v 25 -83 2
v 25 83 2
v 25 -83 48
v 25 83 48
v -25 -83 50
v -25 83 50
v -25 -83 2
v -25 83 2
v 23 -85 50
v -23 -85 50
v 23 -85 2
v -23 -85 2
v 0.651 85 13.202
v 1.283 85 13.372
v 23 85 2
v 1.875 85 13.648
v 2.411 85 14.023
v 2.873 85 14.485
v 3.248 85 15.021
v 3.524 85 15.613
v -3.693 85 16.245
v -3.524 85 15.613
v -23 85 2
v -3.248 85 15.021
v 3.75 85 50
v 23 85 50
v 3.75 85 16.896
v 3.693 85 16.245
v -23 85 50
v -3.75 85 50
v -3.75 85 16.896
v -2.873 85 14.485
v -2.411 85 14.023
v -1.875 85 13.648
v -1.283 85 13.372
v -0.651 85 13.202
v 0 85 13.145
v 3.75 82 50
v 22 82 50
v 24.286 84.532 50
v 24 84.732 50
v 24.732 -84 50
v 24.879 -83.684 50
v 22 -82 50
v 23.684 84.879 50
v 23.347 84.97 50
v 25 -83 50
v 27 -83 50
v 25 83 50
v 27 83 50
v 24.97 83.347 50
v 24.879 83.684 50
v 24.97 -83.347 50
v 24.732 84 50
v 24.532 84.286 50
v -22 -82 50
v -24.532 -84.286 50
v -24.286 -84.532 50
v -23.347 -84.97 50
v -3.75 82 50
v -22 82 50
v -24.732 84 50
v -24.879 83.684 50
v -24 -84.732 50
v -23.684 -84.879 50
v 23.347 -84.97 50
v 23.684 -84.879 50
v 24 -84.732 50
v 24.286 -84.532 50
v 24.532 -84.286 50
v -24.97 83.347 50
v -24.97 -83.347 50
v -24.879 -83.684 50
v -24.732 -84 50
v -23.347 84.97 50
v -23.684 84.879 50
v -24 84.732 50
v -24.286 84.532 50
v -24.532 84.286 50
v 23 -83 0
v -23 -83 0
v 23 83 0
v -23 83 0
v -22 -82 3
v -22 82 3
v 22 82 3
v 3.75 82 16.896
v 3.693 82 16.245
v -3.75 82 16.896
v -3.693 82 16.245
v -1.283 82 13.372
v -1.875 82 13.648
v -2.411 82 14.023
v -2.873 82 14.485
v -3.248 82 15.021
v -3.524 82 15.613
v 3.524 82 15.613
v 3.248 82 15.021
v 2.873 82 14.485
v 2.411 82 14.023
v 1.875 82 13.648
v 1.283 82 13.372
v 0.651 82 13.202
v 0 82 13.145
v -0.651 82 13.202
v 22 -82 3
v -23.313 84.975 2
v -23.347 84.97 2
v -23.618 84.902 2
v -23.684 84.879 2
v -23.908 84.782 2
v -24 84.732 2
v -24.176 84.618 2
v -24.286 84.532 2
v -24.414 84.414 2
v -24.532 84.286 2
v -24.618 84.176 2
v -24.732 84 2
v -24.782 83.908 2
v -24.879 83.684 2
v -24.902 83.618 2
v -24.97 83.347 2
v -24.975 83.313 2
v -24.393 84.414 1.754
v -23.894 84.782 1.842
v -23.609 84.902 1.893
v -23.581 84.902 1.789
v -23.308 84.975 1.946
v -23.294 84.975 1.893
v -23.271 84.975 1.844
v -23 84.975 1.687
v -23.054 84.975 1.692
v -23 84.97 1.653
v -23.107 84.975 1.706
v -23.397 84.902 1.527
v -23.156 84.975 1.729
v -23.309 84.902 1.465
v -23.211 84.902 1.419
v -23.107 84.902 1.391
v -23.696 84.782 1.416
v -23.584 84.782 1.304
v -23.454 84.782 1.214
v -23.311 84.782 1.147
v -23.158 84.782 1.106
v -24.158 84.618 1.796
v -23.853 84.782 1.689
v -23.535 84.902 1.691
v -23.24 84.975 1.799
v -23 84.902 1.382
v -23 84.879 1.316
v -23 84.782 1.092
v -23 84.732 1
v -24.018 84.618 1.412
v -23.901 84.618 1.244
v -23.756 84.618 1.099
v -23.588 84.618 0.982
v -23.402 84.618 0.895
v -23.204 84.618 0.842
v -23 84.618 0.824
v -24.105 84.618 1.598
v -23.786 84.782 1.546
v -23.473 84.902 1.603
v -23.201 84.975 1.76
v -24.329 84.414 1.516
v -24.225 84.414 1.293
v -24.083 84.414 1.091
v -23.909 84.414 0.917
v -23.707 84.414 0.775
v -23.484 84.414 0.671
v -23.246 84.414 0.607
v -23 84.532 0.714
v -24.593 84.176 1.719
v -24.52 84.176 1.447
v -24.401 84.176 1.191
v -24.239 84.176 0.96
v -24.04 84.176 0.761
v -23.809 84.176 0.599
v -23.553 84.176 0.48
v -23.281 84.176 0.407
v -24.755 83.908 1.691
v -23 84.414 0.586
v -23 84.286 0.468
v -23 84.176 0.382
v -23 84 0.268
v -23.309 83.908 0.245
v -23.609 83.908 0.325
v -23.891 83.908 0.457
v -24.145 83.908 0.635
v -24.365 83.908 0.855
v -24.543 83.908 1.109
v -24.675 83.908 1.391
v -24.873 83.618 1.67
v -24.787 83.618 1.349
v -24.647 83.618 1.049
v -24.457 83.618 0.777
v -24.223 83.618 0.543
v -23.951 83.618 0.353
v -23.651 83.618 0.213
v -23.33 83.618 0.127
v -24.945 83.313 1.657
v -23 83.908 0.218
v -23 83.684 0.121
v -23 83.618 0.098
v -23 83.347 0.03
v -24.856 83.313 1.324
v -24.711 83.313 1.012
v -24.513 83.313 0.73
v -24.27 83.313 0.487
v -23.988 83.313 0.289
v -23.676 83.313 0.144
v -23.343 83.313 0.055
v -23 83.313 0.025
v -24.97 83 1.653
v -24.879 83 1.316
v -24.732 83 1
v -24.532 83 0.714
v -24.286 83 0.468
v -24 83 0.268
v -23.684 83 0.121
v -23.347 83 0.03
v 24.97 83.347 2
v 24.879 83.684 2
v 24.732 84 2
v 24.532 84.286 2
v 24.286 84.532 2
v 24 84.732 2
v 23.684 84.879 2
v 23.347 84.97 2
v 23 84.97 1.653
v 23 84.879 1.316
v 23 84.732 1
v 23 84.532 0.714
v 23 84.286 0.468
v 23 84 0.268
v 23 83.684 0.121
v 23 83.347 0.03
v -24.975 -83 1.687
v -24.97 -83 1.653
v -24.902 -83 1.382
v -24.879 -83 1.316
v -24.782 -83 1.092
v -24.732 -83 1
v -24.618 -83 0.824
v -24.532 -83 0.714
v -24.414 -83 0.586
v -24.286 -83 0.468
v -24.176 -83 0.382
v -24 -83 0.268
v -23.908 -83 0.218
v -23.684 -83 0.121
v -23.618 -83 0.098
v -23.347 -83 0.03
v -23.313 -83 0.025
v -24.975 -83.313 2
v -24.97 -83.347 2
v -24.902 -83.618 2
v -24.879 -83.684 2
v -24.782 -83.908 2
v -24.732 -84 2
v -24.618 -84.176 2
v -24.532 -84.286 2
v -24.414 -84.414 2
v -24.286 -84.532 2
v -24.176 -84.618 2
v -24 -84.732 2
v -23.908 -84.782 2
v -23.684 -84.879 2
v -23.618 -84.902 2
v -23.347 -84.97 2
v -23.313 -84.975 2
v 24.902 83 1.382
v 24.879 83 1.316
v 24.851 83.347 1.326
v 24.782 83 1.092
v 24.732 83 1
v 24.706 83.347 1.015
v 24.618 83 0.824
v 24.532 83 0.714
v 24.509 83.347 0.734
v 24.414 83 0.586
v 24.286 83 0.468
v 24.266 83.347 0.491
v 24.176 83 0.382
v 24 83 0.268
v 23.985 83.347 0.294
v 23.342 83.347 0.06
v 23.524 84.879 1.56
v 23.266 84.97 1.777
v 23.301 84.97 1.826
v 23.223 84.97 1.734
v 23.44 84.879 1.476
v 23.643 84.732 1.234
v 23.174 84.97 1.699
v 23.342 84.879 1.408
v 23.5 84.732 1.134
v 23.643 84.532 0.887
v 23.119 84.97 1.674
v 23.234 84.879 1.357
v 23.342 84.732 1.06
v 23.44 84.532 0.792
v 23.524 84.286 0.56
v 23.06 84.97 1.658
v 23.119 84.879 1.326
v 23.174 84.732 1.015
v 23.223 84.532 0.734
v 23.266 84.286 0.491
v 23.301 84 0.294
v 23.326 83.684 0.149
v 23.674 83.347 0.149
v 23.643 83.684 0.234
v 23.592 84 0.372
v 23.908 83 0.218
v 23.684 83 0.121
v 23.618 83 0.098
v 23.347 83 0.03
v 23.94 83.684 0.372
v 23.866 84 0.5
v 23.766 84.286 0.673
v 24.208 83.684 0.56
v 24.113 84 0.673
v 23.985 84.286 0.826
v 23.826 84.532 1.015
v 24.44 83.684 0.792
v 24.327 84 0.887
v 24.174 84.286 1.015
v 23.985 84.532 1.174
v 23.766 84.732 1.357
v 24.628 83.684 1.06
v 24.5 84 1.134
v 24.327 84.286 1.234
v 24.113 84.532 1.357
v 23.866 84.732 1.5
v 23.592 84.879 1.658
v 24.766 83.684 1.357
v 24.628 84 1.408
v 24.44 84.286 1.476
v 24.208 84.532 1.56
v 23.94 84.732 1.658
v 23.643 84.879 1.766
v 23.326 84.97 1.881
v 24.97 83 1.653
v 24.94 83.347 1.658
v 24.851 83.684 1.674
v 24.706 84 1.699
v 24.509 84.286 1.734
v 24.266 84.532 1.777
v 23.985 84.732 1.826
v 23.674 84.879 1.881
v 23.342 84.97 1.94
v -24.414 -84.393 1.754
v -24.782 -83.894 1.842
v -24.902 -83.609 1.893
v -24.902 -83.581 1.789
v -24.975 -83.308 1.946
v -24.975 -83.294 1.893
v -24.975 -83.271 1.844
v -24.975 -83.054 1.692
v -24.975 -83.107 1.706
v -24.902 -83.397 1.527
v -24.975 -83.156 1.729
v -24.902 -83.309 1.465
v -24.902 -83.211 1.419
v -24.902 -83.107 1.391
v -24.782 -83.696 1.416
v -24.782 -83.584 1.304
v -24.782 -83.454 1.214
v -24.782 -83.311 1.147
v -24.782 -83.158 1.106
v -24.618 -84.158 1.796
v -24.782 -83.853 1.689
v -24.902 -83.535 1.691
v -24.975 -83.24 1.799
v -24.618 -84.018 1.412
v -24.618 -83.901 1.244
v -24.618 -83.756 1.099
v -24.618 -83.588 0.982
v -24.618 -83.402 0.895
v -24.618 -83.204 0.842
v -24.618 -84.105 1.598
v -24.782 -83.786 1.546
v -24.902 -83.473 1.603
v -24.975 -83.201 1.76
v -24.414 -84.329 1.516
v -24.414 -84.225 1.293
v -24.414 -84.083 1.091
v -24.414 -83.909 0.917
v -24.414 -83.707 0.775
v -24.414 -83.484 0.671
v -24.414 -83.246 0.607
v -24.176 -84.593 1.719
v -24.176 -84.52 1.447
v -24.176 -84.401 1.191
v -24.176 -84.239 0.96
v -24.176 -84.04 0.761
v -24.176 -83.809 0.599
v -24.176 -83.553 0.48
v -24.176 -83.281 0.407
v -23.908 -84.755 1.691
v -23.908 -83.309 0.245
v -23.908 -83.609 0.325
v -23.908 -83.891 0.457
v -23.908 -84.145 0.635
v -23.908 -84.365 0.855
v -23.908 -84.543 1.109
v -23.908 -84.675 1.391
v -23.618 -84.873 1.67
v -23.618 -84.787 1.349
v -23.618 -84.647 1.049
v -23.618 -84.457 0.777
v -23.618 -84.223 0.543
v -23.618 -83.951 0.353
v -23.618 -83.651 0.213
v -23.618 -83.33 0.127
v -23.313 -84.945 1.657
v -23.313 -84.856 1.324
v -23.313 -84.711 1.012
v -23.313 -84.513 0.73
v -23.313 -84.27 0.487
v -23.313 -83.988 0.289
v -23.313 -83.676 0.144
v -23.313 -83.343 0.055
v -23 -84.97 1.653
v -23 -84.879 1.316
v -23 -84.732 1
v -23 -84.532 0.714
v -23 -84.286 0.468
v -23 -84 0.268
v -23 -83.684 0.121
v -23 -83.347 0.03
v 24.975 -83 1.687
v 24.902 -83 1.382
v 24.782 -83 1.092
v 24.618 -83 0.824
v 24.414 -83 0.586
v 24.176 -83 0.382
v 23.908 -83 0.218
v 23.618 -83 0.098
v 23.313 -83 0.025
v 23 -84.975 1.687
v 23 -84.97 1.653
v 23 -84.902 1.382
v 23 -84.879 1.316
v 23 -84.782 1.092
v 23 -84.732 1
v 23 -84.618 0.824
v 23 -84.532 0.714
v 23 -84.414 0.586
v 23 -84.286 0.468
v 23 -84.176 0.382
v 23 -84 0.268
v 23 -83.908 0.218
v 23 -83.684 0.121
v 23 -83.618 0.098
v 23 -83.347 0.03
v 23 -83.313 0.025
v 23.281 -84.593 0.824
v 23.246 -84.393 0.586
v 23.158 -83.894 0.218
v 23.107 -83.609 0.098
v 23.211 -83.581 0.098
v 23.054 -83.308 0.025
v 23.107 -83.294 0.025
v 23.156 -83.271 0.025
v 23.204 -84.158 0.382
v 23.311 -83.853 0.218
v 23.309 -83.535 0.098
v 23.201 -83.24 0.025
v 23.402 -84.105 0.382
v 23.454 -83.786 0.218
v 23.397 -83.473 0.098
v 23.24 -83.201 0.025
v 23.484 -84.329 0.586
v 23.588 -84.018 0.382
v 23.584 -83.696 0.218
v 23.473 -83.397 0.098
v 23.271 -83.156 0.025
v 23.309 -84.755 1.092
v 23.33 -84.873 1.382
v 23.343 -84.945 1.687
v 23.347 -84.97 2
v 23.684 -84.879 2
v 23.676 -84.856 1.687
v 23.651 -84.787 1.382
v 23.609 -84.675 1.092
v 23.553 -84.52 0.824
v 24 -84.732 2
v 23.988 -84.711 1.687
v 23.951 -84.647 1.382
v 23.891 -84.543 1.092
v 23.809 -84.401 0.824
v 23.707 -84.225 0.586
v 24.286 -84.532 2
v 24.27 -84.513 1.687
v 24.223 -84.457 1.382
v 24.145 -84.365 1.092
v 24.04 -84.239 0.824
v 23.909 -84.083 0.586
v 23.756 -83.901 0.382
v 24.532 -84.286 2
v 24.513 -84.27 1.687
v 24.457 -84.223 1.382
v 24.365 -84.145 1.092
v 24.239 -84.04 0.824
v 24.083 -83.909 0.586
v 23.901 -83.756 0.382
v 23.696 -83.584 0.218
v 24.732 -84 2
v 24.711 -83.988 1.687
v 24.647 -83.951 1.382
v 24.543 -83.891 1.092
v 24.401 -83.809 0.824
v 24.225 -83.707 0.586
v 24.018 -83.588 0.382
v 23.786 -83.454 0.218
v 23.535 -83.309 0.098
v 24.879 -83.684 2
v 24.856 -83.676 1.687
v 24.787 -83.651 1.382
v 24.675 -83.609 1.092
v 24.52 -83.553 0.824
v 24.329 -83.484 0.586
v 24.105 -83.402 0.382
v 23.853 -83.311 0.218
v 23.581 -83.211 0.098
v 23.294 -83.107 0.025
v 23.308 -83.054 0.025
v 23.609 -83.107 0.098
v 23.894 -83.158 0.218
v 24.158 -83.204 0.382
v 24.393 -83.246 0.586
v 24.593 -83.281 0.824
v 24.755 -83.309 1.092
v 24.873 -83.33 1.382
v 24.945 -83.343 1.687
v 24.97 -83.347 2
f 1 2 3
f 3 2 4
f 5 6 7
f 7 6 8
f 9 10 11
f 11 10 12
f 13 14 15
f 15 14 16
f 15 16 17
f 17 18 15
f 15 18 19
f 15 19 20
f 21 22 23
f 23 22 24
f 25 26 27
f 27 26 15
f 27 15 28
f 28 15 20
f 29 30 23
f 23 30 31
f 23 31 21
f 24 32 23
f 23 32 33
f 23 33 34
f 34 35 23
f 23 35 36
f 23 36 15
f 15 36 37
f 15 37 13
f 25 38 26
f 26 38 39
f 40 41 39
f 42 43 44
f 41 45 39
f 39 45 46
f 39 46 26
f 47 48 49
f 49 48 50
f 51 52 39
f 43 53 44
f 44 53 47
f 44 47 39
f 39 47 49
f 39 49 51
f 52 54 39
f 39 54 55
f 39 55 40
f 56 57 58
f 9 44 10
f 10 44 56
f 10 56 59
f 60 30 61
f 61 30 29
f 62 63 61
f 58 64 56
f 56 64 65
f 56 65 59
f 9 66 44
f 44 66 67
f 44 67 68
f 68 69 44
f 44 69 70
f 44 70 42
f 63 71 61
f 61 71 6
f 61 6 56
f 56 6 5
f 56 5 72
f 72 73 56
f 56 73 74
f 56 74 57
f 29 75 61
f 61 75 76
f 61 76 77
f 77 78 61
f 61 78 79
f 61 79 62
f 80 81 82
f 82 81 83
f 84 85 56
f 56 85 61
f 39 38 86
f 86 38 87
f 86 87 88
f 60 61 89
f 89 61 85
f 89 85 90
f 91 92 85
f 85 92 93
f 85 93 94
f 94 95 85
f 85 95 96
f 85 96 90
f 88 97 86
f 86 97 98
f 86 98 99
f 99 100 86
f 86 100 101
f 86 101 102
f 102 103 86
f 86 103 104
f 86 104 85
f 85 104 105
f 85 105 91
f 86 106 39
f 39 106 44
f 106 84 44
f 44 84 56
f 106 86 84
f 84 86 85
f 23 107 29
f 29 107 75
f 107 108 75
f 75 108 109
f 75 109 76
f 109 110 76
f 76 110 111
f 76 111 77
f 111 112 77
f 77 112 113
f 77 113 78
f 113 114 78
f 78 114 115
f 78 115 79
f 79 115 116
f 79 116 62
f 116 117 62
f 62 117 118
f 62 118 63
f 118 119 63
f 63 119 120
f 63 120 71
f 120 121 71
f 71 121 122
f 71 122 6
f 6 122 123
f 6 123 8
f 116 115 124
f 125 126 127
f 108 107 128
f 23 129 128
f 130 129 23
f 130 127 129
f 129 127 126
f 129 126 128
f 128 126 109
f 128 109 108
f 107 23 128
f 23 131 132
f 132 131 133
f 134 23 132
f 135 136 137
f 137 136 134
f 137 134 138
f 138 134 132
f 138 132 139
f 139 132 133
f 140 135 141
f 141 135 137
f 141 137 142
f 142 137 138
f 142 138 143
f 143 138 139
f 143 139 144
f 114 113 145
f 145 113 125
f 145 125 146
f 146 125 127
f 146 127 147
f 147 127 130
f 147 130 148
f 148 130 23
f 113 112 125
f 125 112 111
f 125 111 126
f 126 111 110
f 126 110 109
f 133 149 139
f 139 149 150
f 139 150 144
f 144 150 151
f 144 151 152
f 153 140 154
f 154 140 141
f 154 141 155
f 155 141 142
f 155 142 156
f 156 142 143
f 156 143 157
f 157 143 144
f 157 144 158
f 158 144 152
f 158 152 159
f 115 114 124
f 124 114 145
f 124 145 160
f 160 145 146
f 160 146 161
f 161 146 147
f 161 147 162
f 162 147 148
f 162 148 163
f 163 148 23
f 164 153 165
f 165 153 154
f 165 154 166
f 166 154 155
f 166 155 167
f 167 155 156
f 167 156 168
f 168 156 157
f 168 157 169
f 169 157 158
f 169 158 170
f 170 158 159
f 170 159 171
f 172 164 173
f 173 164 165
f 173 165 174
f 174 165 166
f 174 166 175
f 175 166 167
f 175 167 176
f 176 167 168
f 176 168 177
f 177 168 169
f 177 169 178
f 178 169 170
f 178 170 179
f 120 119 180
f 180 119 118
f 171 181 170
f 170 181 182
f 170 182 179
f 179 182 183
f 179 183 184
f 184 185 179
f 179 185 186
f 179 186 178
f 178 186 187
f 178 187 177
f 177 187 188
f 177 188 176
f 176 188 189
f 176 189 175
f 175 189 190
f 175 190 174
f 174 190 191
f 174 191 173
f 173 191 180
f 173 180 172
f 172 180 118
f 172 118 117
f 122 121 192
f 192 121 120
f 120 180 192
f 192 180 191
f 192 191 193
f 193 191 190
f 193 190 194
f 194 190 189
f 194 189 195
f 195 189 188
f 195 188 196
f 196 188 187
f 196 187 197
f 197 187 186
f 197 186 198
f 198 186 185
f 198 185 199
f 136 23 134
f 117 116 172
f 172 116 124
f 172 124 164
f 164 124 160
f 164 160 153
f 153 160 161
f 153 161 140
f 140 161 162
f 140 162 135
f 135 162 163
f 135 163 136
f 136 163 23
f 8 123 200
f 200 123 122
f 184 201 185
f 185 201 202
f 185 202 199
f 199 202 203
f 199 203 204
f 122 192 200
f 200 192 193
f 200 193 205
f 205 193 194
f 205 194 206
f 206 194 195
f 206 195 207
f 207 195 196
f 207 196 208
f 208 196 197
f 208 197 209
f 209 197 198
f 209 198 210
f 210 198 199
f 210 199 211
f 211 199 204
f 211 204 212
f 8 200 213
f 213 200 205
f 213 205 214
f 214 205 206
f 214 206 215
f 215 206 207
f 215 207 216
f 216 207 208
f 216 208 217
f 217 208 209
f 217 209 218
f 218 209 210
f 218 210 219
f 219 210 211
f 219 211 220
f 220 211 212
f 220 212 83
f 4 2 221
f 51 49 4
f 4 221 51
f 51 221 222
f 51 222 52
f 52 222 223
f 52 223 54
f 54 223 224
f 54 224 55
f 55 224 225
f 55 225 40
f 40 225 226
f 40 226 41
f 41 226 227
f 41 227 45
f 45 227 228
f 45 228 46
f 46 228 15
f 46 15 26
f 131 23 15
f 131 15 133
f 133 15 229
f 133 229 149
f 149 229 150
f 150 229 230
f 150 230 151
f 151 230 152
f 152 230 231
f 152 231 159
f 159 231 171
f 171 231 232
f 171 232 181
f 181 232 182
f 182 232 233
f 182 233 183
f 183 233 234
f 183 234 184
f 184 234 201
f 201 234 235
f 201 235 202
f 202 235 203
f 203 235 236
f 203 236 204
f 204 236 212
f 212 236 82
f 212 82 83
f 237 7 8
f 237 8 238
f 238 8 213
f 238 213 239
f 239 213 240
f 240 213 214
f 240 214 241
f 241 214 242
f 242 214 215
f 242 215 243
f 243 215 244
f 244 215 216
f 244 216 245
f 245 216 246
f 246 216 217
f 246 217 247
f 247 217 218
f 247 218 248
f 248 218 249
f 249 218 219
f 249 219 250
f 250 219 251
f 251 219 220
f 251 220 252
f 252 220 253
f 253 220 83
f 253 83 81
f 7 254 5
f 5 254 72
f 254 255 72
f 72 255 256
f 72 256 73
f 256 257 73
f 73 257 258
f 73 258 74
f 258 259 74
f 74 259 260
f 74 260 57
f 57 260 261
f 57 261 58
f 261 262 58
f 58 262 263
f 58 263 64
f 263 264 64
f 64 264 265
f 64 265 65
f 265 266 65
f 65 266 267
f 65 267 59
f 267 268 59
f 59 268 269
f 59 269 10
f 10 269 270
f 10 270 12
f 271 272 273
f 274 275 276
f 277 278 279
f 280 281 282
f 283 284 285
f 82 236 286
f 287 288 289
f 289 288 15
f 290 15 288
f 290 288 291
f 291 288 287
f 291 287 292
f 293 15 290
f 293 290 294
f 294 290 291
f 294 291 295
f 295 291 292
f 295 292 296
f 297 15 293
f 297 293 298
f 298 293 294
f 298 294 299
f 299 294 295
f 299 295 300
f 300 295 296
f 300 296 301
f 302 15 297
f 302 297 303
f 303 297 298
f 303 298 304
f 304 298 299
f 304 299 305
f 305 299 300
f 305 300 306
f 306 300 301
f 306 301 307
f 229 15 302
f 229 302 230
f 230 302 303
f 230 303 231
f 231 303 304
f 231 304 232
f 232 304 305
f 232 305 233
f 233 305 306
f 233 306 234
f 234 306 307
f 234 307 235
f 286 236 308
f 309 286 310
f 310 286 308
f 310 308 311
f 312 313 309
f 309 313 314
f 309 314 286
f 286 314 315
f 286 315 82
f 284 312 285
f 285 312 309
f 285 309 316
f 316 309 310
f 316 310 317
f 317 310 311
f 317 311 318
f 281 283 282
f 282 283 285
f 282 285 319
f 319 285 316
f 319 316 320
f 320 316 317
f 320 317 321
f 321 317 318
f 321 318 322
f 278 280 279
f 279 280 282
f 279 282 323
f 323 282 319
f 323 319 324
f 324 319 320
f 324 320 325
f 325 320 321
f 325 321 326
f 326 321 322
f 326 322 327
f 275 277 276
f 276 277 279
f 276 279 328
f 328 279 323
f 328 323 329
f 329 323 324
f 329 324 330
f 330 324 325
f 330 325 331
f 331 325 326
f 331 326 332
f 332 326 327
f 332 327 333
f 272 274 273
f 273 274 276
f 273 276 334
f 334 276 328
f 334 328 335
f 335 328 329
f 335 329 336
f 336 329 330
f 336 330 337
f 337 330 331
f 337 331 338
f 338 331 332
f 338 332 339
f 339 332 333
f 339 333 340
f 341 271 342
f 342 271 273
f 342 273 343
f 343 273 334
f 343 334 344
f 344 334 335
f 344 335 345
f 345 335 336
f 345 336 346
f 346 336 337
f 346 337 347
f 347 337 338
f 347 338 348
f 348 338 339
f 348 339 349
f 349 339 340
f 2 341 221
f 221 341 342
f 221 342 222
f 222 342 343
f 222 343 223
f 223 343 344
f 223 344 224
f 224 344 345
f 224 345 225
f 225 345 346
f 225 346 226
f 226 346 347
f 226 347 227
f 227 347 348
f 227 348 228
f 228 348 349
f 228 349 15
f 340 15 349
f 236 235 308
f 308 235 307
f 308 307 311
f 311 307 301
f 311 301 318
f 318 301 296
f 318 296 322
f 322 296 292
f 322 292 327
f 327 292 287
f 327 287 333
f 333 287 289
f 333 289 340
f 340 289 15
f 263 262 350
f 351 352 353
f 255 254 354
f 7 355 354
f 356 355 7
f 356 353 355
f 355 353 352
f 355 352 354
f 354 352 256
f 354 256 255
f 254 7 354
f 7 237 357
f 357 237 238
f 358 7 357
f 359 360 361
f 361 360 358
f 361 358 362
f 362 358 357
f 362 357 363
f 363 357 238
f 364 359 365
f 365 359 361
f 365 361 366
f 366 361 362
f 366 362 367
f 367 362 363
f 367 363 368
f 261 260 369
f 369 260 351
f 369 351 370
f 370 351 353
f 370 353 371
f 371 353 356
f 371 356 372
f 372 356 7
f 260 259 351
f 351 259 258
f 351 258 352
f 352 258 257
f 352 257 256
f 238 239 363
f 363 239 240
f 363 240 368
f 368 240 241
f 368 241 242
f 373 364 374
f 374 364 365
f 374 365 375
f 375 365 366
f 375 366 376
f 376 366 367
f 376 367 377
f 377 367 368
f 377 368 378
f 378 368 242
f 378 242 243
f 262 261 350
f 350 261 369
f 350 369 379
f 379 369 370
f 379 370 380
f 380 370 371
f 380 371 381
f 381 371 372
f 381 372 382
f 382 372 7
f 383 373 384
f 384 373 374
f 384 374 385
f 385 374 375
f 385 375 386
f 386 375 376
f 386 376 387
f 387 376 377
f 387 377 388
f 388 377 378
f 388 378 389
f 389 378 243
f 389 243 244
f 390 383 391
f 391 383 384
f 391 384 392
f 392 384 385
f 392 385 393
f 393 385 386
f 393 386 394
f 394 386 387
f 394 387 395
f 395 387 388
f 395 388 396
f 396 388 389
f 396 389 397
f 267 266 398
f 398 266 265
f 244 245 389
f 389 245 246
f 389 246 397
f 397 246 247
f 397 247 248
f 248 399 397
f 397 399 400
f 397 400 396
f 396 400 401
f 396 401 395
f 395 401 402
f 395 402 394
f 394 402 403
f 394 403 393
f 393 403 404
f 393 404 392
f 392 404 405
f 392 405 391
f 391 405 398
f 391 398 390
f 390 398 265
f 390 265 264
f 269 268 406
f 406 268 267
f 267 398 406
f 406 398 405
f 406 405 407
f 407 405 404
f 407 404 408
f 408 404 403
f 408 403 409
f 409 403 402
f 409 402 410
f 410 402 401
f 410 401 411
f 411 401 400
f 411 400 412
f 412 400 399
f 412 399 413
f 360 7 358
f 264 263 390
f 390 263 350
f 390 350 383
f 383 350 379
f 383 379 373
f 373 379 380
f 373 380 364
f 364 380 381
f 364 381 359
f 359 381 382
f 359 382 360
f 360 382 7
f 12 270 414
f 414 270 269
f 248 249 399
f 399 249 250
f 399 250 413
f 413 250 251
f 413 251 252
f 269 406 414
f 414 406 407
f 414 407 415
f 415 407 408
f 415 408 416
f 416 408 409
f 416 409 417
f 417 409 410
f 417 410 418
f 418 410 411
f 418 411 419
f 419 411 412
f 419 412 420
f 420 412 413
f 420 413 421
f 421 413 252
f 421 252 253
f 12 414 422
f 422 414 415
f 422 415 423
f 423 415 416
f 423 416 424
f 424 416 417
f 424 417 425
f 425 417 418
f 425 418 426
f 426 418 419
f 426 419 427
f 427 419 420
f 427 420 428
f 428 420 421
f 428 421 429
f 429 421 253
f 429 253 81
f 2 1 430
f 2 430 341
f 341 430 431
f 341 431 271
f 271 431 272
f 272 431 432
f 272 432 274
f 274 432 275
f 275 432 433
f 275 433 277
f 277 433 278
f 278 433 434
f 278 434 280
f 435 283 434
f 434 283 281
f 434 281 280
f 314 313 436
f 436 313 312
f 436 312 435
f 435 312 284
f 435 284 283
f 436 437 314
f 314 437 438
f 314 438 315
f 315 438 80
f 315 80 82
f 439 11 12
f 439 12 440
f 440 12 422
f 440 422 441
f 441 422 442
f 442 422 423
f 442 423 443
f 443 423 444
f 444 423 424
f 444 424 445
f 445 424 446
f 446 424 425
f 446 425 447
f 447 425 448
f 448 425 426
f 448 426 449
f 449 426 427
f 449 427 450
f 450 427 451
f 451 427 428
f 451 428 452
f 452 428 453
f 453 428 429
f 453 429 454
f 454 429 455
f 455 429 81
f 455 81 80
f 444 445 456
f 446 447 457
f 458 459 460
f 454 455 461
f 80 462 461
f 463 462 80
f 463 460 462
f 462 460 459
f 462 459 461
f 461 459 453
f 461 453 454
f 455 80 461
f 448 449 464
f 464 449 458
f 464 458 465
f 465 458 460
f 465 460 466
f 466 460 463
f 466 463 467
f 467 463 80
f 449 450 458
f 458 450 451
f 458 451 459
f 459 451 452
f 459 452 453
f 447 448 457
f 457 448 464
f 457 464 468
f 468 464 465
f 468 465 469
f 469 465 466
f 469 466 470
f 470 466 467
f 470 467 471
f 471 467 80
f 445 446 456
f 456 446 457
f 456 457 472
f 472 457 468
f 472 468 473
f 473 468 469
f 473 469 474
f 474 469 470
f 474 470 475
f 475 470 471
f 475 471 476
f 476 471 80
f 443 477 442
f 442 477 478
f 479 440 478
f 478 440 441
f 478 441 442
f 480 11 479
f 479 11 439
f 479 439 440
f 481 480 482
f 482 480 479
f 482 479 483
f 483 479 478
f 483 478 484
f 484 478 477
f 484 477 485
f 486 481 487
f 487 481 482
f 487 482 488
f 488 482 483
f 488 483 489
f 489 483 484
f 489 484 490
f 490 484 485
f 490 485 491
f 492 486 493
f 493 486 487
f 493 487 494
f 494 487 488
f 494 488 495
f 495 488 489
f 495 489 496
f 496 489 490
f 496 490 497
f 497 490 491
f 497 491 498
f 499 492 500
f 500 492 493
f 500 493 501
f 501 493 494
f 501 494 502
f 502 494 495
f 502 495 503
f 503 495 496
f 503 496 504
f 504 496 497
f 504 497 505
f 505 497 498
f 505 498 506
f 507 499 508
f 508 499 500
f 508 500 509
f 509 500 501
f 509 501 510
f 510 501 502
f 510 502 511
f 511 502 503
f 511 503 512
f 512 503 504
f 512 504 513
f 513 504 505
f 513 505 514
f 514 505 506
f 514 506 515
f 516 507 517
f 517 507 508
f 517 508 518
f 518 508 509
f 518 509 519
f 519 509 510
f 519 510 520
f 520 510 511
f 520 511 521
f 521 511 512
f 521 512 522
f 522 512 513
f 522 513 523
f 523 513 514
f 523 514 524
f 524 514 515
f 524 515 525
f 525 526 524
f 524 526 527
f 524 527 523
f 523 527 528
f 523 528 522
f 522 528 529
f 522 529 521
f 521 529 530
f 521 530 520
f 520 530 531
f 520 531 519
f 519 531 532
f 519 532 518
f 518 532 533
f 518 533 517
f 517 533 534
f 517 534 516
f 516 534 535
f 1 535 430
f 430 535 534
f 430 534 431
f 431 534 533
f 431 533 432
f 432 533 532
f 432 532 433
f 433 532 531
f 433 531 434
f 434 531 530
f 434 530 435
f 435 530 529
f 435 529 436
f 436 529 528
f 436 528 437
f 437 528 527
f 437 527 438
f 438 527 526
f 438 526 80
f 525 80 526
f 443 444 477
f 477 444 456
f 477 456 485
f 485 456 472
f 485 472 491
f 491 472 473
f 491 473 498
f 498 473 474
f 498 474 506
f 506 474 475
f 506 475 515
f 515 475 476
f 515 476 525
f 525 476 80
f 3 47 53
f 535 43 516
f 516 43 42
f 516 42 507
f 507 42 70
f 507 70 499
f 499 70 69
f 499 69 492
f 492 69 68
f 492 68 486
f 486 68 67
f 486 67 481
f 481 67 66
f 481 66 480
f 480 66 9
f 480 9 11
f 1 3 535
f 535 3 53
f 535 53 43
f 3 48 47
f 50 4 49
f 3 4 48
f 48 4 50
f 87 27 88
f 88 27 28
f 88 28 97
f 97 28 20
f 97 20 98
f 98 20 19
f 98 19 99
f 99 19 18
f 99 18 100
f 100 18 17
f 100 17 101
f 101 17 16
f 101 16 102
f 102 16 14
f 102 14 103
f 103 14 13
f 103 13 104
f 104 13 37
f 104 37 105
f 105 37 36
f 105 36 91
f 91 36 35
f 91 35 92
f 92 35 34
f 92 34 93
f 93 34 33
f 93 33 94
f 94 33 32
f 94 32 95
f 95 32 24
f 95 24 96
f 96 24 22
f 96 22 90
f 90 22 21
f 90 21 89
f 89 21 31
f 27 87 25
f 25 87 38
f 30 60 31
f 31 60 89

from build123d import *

# Parameters (mm, degrees)
SKETCH2_W           = 50
SKETCH2_H           = 170
BOSS_EXTRUDE1_DEPTH = 50
SKETCH3_W           = 44
SKETCH3_H           = 164
CUT_EXTRUDE1_DEPTH  = 47
FILLET2_R           = 2
SKETCH4_W           = 2
SKETCH4_H           = 166
BOSS_EXTRUDE2_DEPTH = 2
CUT_EXTRUDE2_DEPTH  = 170
CUT_EXTRUDE5_DEPTH  = 10


with BuildPart() as part:
    # Sketch2 → Boss-Extrude1 (new body)
    with BuildSketch(Plane.XY):
        Rectangle(SKETCH2_W, SKETCH2_H)
    extrude(amount=BOSS_EXTRUDE1_DEPTH)

    # Sketch3 → Cut-Extrude1 (cut)
    with BuildSketch(Plane.XY.offset(50)):
        Rectangle(SKETCH3_W, SKETCH3_H)
    extrude(amount=-CUT_EXTRUDE1_DEPTH, mode=Mode.SUBTRACT)

    # Fillet2
    fillet2_edges = [part.edges().sort_by_distance(p)[0] for p in [
        (0, 85, 0),
        (25, 0, 0),
        (0, -85, 0),
        (-25, 0, 0),
        (-25, 85, 25),
        (25, 85, 25),
        (25, -85, 25),
        (-25, -85, 25),
    ]]
    fillet(fillet2_edges, radius=FILLET2_R)

    # Sketch4 → Boss-Extrude2 (add)
    with BuildSketch(Plane(origin=(25, 0, 0), x_dir=(0, 0, -1), z_dir=(1, 0, 0))):
        with Locations((-49, 0)):
            Rectangle(SKETCH4_W, SKETCH4_H)
    extrude(amount=BOSS_EXTRUDE2_DEPTH)

    # Sketch5 → Cut-Extrude2 (cut)
    with BuildSketch(Plane.XZ.offset(83)):
        Polygon((25, 48), (27, 50), (27, 48), align=None)
    extrude(amount=-CUT_EXTRUDE2_DEPTH, mode=Mode.SUBTRACT)

    # Sketch9 → Cut-Extrude5 (cut)
    with BuildSketch(Plane(origin=(0, 85, 0), x_dir=(1, 0, 0), z_dir=(0, 1, 0))):
        with BuildLine():
            Line((3.750279021, -16.895768884), (3.750279021, -50))
            ThreePointArc((3.750279021, -50), (0, -53.750279021), (-3.750279021, -50))
            Line((-3.750279021, -50), (-3.750279021, -16.895768884))
            ThreePointArc((-3.750279021, -16.895768884), (0, -13.145489863), (3.750279021, -16.895768884))
        make_face()
    extrude(amount=-CUT_EXTRUDE5_DEPTH, mode=Mode.SUBTRACT)


solid = part.part
